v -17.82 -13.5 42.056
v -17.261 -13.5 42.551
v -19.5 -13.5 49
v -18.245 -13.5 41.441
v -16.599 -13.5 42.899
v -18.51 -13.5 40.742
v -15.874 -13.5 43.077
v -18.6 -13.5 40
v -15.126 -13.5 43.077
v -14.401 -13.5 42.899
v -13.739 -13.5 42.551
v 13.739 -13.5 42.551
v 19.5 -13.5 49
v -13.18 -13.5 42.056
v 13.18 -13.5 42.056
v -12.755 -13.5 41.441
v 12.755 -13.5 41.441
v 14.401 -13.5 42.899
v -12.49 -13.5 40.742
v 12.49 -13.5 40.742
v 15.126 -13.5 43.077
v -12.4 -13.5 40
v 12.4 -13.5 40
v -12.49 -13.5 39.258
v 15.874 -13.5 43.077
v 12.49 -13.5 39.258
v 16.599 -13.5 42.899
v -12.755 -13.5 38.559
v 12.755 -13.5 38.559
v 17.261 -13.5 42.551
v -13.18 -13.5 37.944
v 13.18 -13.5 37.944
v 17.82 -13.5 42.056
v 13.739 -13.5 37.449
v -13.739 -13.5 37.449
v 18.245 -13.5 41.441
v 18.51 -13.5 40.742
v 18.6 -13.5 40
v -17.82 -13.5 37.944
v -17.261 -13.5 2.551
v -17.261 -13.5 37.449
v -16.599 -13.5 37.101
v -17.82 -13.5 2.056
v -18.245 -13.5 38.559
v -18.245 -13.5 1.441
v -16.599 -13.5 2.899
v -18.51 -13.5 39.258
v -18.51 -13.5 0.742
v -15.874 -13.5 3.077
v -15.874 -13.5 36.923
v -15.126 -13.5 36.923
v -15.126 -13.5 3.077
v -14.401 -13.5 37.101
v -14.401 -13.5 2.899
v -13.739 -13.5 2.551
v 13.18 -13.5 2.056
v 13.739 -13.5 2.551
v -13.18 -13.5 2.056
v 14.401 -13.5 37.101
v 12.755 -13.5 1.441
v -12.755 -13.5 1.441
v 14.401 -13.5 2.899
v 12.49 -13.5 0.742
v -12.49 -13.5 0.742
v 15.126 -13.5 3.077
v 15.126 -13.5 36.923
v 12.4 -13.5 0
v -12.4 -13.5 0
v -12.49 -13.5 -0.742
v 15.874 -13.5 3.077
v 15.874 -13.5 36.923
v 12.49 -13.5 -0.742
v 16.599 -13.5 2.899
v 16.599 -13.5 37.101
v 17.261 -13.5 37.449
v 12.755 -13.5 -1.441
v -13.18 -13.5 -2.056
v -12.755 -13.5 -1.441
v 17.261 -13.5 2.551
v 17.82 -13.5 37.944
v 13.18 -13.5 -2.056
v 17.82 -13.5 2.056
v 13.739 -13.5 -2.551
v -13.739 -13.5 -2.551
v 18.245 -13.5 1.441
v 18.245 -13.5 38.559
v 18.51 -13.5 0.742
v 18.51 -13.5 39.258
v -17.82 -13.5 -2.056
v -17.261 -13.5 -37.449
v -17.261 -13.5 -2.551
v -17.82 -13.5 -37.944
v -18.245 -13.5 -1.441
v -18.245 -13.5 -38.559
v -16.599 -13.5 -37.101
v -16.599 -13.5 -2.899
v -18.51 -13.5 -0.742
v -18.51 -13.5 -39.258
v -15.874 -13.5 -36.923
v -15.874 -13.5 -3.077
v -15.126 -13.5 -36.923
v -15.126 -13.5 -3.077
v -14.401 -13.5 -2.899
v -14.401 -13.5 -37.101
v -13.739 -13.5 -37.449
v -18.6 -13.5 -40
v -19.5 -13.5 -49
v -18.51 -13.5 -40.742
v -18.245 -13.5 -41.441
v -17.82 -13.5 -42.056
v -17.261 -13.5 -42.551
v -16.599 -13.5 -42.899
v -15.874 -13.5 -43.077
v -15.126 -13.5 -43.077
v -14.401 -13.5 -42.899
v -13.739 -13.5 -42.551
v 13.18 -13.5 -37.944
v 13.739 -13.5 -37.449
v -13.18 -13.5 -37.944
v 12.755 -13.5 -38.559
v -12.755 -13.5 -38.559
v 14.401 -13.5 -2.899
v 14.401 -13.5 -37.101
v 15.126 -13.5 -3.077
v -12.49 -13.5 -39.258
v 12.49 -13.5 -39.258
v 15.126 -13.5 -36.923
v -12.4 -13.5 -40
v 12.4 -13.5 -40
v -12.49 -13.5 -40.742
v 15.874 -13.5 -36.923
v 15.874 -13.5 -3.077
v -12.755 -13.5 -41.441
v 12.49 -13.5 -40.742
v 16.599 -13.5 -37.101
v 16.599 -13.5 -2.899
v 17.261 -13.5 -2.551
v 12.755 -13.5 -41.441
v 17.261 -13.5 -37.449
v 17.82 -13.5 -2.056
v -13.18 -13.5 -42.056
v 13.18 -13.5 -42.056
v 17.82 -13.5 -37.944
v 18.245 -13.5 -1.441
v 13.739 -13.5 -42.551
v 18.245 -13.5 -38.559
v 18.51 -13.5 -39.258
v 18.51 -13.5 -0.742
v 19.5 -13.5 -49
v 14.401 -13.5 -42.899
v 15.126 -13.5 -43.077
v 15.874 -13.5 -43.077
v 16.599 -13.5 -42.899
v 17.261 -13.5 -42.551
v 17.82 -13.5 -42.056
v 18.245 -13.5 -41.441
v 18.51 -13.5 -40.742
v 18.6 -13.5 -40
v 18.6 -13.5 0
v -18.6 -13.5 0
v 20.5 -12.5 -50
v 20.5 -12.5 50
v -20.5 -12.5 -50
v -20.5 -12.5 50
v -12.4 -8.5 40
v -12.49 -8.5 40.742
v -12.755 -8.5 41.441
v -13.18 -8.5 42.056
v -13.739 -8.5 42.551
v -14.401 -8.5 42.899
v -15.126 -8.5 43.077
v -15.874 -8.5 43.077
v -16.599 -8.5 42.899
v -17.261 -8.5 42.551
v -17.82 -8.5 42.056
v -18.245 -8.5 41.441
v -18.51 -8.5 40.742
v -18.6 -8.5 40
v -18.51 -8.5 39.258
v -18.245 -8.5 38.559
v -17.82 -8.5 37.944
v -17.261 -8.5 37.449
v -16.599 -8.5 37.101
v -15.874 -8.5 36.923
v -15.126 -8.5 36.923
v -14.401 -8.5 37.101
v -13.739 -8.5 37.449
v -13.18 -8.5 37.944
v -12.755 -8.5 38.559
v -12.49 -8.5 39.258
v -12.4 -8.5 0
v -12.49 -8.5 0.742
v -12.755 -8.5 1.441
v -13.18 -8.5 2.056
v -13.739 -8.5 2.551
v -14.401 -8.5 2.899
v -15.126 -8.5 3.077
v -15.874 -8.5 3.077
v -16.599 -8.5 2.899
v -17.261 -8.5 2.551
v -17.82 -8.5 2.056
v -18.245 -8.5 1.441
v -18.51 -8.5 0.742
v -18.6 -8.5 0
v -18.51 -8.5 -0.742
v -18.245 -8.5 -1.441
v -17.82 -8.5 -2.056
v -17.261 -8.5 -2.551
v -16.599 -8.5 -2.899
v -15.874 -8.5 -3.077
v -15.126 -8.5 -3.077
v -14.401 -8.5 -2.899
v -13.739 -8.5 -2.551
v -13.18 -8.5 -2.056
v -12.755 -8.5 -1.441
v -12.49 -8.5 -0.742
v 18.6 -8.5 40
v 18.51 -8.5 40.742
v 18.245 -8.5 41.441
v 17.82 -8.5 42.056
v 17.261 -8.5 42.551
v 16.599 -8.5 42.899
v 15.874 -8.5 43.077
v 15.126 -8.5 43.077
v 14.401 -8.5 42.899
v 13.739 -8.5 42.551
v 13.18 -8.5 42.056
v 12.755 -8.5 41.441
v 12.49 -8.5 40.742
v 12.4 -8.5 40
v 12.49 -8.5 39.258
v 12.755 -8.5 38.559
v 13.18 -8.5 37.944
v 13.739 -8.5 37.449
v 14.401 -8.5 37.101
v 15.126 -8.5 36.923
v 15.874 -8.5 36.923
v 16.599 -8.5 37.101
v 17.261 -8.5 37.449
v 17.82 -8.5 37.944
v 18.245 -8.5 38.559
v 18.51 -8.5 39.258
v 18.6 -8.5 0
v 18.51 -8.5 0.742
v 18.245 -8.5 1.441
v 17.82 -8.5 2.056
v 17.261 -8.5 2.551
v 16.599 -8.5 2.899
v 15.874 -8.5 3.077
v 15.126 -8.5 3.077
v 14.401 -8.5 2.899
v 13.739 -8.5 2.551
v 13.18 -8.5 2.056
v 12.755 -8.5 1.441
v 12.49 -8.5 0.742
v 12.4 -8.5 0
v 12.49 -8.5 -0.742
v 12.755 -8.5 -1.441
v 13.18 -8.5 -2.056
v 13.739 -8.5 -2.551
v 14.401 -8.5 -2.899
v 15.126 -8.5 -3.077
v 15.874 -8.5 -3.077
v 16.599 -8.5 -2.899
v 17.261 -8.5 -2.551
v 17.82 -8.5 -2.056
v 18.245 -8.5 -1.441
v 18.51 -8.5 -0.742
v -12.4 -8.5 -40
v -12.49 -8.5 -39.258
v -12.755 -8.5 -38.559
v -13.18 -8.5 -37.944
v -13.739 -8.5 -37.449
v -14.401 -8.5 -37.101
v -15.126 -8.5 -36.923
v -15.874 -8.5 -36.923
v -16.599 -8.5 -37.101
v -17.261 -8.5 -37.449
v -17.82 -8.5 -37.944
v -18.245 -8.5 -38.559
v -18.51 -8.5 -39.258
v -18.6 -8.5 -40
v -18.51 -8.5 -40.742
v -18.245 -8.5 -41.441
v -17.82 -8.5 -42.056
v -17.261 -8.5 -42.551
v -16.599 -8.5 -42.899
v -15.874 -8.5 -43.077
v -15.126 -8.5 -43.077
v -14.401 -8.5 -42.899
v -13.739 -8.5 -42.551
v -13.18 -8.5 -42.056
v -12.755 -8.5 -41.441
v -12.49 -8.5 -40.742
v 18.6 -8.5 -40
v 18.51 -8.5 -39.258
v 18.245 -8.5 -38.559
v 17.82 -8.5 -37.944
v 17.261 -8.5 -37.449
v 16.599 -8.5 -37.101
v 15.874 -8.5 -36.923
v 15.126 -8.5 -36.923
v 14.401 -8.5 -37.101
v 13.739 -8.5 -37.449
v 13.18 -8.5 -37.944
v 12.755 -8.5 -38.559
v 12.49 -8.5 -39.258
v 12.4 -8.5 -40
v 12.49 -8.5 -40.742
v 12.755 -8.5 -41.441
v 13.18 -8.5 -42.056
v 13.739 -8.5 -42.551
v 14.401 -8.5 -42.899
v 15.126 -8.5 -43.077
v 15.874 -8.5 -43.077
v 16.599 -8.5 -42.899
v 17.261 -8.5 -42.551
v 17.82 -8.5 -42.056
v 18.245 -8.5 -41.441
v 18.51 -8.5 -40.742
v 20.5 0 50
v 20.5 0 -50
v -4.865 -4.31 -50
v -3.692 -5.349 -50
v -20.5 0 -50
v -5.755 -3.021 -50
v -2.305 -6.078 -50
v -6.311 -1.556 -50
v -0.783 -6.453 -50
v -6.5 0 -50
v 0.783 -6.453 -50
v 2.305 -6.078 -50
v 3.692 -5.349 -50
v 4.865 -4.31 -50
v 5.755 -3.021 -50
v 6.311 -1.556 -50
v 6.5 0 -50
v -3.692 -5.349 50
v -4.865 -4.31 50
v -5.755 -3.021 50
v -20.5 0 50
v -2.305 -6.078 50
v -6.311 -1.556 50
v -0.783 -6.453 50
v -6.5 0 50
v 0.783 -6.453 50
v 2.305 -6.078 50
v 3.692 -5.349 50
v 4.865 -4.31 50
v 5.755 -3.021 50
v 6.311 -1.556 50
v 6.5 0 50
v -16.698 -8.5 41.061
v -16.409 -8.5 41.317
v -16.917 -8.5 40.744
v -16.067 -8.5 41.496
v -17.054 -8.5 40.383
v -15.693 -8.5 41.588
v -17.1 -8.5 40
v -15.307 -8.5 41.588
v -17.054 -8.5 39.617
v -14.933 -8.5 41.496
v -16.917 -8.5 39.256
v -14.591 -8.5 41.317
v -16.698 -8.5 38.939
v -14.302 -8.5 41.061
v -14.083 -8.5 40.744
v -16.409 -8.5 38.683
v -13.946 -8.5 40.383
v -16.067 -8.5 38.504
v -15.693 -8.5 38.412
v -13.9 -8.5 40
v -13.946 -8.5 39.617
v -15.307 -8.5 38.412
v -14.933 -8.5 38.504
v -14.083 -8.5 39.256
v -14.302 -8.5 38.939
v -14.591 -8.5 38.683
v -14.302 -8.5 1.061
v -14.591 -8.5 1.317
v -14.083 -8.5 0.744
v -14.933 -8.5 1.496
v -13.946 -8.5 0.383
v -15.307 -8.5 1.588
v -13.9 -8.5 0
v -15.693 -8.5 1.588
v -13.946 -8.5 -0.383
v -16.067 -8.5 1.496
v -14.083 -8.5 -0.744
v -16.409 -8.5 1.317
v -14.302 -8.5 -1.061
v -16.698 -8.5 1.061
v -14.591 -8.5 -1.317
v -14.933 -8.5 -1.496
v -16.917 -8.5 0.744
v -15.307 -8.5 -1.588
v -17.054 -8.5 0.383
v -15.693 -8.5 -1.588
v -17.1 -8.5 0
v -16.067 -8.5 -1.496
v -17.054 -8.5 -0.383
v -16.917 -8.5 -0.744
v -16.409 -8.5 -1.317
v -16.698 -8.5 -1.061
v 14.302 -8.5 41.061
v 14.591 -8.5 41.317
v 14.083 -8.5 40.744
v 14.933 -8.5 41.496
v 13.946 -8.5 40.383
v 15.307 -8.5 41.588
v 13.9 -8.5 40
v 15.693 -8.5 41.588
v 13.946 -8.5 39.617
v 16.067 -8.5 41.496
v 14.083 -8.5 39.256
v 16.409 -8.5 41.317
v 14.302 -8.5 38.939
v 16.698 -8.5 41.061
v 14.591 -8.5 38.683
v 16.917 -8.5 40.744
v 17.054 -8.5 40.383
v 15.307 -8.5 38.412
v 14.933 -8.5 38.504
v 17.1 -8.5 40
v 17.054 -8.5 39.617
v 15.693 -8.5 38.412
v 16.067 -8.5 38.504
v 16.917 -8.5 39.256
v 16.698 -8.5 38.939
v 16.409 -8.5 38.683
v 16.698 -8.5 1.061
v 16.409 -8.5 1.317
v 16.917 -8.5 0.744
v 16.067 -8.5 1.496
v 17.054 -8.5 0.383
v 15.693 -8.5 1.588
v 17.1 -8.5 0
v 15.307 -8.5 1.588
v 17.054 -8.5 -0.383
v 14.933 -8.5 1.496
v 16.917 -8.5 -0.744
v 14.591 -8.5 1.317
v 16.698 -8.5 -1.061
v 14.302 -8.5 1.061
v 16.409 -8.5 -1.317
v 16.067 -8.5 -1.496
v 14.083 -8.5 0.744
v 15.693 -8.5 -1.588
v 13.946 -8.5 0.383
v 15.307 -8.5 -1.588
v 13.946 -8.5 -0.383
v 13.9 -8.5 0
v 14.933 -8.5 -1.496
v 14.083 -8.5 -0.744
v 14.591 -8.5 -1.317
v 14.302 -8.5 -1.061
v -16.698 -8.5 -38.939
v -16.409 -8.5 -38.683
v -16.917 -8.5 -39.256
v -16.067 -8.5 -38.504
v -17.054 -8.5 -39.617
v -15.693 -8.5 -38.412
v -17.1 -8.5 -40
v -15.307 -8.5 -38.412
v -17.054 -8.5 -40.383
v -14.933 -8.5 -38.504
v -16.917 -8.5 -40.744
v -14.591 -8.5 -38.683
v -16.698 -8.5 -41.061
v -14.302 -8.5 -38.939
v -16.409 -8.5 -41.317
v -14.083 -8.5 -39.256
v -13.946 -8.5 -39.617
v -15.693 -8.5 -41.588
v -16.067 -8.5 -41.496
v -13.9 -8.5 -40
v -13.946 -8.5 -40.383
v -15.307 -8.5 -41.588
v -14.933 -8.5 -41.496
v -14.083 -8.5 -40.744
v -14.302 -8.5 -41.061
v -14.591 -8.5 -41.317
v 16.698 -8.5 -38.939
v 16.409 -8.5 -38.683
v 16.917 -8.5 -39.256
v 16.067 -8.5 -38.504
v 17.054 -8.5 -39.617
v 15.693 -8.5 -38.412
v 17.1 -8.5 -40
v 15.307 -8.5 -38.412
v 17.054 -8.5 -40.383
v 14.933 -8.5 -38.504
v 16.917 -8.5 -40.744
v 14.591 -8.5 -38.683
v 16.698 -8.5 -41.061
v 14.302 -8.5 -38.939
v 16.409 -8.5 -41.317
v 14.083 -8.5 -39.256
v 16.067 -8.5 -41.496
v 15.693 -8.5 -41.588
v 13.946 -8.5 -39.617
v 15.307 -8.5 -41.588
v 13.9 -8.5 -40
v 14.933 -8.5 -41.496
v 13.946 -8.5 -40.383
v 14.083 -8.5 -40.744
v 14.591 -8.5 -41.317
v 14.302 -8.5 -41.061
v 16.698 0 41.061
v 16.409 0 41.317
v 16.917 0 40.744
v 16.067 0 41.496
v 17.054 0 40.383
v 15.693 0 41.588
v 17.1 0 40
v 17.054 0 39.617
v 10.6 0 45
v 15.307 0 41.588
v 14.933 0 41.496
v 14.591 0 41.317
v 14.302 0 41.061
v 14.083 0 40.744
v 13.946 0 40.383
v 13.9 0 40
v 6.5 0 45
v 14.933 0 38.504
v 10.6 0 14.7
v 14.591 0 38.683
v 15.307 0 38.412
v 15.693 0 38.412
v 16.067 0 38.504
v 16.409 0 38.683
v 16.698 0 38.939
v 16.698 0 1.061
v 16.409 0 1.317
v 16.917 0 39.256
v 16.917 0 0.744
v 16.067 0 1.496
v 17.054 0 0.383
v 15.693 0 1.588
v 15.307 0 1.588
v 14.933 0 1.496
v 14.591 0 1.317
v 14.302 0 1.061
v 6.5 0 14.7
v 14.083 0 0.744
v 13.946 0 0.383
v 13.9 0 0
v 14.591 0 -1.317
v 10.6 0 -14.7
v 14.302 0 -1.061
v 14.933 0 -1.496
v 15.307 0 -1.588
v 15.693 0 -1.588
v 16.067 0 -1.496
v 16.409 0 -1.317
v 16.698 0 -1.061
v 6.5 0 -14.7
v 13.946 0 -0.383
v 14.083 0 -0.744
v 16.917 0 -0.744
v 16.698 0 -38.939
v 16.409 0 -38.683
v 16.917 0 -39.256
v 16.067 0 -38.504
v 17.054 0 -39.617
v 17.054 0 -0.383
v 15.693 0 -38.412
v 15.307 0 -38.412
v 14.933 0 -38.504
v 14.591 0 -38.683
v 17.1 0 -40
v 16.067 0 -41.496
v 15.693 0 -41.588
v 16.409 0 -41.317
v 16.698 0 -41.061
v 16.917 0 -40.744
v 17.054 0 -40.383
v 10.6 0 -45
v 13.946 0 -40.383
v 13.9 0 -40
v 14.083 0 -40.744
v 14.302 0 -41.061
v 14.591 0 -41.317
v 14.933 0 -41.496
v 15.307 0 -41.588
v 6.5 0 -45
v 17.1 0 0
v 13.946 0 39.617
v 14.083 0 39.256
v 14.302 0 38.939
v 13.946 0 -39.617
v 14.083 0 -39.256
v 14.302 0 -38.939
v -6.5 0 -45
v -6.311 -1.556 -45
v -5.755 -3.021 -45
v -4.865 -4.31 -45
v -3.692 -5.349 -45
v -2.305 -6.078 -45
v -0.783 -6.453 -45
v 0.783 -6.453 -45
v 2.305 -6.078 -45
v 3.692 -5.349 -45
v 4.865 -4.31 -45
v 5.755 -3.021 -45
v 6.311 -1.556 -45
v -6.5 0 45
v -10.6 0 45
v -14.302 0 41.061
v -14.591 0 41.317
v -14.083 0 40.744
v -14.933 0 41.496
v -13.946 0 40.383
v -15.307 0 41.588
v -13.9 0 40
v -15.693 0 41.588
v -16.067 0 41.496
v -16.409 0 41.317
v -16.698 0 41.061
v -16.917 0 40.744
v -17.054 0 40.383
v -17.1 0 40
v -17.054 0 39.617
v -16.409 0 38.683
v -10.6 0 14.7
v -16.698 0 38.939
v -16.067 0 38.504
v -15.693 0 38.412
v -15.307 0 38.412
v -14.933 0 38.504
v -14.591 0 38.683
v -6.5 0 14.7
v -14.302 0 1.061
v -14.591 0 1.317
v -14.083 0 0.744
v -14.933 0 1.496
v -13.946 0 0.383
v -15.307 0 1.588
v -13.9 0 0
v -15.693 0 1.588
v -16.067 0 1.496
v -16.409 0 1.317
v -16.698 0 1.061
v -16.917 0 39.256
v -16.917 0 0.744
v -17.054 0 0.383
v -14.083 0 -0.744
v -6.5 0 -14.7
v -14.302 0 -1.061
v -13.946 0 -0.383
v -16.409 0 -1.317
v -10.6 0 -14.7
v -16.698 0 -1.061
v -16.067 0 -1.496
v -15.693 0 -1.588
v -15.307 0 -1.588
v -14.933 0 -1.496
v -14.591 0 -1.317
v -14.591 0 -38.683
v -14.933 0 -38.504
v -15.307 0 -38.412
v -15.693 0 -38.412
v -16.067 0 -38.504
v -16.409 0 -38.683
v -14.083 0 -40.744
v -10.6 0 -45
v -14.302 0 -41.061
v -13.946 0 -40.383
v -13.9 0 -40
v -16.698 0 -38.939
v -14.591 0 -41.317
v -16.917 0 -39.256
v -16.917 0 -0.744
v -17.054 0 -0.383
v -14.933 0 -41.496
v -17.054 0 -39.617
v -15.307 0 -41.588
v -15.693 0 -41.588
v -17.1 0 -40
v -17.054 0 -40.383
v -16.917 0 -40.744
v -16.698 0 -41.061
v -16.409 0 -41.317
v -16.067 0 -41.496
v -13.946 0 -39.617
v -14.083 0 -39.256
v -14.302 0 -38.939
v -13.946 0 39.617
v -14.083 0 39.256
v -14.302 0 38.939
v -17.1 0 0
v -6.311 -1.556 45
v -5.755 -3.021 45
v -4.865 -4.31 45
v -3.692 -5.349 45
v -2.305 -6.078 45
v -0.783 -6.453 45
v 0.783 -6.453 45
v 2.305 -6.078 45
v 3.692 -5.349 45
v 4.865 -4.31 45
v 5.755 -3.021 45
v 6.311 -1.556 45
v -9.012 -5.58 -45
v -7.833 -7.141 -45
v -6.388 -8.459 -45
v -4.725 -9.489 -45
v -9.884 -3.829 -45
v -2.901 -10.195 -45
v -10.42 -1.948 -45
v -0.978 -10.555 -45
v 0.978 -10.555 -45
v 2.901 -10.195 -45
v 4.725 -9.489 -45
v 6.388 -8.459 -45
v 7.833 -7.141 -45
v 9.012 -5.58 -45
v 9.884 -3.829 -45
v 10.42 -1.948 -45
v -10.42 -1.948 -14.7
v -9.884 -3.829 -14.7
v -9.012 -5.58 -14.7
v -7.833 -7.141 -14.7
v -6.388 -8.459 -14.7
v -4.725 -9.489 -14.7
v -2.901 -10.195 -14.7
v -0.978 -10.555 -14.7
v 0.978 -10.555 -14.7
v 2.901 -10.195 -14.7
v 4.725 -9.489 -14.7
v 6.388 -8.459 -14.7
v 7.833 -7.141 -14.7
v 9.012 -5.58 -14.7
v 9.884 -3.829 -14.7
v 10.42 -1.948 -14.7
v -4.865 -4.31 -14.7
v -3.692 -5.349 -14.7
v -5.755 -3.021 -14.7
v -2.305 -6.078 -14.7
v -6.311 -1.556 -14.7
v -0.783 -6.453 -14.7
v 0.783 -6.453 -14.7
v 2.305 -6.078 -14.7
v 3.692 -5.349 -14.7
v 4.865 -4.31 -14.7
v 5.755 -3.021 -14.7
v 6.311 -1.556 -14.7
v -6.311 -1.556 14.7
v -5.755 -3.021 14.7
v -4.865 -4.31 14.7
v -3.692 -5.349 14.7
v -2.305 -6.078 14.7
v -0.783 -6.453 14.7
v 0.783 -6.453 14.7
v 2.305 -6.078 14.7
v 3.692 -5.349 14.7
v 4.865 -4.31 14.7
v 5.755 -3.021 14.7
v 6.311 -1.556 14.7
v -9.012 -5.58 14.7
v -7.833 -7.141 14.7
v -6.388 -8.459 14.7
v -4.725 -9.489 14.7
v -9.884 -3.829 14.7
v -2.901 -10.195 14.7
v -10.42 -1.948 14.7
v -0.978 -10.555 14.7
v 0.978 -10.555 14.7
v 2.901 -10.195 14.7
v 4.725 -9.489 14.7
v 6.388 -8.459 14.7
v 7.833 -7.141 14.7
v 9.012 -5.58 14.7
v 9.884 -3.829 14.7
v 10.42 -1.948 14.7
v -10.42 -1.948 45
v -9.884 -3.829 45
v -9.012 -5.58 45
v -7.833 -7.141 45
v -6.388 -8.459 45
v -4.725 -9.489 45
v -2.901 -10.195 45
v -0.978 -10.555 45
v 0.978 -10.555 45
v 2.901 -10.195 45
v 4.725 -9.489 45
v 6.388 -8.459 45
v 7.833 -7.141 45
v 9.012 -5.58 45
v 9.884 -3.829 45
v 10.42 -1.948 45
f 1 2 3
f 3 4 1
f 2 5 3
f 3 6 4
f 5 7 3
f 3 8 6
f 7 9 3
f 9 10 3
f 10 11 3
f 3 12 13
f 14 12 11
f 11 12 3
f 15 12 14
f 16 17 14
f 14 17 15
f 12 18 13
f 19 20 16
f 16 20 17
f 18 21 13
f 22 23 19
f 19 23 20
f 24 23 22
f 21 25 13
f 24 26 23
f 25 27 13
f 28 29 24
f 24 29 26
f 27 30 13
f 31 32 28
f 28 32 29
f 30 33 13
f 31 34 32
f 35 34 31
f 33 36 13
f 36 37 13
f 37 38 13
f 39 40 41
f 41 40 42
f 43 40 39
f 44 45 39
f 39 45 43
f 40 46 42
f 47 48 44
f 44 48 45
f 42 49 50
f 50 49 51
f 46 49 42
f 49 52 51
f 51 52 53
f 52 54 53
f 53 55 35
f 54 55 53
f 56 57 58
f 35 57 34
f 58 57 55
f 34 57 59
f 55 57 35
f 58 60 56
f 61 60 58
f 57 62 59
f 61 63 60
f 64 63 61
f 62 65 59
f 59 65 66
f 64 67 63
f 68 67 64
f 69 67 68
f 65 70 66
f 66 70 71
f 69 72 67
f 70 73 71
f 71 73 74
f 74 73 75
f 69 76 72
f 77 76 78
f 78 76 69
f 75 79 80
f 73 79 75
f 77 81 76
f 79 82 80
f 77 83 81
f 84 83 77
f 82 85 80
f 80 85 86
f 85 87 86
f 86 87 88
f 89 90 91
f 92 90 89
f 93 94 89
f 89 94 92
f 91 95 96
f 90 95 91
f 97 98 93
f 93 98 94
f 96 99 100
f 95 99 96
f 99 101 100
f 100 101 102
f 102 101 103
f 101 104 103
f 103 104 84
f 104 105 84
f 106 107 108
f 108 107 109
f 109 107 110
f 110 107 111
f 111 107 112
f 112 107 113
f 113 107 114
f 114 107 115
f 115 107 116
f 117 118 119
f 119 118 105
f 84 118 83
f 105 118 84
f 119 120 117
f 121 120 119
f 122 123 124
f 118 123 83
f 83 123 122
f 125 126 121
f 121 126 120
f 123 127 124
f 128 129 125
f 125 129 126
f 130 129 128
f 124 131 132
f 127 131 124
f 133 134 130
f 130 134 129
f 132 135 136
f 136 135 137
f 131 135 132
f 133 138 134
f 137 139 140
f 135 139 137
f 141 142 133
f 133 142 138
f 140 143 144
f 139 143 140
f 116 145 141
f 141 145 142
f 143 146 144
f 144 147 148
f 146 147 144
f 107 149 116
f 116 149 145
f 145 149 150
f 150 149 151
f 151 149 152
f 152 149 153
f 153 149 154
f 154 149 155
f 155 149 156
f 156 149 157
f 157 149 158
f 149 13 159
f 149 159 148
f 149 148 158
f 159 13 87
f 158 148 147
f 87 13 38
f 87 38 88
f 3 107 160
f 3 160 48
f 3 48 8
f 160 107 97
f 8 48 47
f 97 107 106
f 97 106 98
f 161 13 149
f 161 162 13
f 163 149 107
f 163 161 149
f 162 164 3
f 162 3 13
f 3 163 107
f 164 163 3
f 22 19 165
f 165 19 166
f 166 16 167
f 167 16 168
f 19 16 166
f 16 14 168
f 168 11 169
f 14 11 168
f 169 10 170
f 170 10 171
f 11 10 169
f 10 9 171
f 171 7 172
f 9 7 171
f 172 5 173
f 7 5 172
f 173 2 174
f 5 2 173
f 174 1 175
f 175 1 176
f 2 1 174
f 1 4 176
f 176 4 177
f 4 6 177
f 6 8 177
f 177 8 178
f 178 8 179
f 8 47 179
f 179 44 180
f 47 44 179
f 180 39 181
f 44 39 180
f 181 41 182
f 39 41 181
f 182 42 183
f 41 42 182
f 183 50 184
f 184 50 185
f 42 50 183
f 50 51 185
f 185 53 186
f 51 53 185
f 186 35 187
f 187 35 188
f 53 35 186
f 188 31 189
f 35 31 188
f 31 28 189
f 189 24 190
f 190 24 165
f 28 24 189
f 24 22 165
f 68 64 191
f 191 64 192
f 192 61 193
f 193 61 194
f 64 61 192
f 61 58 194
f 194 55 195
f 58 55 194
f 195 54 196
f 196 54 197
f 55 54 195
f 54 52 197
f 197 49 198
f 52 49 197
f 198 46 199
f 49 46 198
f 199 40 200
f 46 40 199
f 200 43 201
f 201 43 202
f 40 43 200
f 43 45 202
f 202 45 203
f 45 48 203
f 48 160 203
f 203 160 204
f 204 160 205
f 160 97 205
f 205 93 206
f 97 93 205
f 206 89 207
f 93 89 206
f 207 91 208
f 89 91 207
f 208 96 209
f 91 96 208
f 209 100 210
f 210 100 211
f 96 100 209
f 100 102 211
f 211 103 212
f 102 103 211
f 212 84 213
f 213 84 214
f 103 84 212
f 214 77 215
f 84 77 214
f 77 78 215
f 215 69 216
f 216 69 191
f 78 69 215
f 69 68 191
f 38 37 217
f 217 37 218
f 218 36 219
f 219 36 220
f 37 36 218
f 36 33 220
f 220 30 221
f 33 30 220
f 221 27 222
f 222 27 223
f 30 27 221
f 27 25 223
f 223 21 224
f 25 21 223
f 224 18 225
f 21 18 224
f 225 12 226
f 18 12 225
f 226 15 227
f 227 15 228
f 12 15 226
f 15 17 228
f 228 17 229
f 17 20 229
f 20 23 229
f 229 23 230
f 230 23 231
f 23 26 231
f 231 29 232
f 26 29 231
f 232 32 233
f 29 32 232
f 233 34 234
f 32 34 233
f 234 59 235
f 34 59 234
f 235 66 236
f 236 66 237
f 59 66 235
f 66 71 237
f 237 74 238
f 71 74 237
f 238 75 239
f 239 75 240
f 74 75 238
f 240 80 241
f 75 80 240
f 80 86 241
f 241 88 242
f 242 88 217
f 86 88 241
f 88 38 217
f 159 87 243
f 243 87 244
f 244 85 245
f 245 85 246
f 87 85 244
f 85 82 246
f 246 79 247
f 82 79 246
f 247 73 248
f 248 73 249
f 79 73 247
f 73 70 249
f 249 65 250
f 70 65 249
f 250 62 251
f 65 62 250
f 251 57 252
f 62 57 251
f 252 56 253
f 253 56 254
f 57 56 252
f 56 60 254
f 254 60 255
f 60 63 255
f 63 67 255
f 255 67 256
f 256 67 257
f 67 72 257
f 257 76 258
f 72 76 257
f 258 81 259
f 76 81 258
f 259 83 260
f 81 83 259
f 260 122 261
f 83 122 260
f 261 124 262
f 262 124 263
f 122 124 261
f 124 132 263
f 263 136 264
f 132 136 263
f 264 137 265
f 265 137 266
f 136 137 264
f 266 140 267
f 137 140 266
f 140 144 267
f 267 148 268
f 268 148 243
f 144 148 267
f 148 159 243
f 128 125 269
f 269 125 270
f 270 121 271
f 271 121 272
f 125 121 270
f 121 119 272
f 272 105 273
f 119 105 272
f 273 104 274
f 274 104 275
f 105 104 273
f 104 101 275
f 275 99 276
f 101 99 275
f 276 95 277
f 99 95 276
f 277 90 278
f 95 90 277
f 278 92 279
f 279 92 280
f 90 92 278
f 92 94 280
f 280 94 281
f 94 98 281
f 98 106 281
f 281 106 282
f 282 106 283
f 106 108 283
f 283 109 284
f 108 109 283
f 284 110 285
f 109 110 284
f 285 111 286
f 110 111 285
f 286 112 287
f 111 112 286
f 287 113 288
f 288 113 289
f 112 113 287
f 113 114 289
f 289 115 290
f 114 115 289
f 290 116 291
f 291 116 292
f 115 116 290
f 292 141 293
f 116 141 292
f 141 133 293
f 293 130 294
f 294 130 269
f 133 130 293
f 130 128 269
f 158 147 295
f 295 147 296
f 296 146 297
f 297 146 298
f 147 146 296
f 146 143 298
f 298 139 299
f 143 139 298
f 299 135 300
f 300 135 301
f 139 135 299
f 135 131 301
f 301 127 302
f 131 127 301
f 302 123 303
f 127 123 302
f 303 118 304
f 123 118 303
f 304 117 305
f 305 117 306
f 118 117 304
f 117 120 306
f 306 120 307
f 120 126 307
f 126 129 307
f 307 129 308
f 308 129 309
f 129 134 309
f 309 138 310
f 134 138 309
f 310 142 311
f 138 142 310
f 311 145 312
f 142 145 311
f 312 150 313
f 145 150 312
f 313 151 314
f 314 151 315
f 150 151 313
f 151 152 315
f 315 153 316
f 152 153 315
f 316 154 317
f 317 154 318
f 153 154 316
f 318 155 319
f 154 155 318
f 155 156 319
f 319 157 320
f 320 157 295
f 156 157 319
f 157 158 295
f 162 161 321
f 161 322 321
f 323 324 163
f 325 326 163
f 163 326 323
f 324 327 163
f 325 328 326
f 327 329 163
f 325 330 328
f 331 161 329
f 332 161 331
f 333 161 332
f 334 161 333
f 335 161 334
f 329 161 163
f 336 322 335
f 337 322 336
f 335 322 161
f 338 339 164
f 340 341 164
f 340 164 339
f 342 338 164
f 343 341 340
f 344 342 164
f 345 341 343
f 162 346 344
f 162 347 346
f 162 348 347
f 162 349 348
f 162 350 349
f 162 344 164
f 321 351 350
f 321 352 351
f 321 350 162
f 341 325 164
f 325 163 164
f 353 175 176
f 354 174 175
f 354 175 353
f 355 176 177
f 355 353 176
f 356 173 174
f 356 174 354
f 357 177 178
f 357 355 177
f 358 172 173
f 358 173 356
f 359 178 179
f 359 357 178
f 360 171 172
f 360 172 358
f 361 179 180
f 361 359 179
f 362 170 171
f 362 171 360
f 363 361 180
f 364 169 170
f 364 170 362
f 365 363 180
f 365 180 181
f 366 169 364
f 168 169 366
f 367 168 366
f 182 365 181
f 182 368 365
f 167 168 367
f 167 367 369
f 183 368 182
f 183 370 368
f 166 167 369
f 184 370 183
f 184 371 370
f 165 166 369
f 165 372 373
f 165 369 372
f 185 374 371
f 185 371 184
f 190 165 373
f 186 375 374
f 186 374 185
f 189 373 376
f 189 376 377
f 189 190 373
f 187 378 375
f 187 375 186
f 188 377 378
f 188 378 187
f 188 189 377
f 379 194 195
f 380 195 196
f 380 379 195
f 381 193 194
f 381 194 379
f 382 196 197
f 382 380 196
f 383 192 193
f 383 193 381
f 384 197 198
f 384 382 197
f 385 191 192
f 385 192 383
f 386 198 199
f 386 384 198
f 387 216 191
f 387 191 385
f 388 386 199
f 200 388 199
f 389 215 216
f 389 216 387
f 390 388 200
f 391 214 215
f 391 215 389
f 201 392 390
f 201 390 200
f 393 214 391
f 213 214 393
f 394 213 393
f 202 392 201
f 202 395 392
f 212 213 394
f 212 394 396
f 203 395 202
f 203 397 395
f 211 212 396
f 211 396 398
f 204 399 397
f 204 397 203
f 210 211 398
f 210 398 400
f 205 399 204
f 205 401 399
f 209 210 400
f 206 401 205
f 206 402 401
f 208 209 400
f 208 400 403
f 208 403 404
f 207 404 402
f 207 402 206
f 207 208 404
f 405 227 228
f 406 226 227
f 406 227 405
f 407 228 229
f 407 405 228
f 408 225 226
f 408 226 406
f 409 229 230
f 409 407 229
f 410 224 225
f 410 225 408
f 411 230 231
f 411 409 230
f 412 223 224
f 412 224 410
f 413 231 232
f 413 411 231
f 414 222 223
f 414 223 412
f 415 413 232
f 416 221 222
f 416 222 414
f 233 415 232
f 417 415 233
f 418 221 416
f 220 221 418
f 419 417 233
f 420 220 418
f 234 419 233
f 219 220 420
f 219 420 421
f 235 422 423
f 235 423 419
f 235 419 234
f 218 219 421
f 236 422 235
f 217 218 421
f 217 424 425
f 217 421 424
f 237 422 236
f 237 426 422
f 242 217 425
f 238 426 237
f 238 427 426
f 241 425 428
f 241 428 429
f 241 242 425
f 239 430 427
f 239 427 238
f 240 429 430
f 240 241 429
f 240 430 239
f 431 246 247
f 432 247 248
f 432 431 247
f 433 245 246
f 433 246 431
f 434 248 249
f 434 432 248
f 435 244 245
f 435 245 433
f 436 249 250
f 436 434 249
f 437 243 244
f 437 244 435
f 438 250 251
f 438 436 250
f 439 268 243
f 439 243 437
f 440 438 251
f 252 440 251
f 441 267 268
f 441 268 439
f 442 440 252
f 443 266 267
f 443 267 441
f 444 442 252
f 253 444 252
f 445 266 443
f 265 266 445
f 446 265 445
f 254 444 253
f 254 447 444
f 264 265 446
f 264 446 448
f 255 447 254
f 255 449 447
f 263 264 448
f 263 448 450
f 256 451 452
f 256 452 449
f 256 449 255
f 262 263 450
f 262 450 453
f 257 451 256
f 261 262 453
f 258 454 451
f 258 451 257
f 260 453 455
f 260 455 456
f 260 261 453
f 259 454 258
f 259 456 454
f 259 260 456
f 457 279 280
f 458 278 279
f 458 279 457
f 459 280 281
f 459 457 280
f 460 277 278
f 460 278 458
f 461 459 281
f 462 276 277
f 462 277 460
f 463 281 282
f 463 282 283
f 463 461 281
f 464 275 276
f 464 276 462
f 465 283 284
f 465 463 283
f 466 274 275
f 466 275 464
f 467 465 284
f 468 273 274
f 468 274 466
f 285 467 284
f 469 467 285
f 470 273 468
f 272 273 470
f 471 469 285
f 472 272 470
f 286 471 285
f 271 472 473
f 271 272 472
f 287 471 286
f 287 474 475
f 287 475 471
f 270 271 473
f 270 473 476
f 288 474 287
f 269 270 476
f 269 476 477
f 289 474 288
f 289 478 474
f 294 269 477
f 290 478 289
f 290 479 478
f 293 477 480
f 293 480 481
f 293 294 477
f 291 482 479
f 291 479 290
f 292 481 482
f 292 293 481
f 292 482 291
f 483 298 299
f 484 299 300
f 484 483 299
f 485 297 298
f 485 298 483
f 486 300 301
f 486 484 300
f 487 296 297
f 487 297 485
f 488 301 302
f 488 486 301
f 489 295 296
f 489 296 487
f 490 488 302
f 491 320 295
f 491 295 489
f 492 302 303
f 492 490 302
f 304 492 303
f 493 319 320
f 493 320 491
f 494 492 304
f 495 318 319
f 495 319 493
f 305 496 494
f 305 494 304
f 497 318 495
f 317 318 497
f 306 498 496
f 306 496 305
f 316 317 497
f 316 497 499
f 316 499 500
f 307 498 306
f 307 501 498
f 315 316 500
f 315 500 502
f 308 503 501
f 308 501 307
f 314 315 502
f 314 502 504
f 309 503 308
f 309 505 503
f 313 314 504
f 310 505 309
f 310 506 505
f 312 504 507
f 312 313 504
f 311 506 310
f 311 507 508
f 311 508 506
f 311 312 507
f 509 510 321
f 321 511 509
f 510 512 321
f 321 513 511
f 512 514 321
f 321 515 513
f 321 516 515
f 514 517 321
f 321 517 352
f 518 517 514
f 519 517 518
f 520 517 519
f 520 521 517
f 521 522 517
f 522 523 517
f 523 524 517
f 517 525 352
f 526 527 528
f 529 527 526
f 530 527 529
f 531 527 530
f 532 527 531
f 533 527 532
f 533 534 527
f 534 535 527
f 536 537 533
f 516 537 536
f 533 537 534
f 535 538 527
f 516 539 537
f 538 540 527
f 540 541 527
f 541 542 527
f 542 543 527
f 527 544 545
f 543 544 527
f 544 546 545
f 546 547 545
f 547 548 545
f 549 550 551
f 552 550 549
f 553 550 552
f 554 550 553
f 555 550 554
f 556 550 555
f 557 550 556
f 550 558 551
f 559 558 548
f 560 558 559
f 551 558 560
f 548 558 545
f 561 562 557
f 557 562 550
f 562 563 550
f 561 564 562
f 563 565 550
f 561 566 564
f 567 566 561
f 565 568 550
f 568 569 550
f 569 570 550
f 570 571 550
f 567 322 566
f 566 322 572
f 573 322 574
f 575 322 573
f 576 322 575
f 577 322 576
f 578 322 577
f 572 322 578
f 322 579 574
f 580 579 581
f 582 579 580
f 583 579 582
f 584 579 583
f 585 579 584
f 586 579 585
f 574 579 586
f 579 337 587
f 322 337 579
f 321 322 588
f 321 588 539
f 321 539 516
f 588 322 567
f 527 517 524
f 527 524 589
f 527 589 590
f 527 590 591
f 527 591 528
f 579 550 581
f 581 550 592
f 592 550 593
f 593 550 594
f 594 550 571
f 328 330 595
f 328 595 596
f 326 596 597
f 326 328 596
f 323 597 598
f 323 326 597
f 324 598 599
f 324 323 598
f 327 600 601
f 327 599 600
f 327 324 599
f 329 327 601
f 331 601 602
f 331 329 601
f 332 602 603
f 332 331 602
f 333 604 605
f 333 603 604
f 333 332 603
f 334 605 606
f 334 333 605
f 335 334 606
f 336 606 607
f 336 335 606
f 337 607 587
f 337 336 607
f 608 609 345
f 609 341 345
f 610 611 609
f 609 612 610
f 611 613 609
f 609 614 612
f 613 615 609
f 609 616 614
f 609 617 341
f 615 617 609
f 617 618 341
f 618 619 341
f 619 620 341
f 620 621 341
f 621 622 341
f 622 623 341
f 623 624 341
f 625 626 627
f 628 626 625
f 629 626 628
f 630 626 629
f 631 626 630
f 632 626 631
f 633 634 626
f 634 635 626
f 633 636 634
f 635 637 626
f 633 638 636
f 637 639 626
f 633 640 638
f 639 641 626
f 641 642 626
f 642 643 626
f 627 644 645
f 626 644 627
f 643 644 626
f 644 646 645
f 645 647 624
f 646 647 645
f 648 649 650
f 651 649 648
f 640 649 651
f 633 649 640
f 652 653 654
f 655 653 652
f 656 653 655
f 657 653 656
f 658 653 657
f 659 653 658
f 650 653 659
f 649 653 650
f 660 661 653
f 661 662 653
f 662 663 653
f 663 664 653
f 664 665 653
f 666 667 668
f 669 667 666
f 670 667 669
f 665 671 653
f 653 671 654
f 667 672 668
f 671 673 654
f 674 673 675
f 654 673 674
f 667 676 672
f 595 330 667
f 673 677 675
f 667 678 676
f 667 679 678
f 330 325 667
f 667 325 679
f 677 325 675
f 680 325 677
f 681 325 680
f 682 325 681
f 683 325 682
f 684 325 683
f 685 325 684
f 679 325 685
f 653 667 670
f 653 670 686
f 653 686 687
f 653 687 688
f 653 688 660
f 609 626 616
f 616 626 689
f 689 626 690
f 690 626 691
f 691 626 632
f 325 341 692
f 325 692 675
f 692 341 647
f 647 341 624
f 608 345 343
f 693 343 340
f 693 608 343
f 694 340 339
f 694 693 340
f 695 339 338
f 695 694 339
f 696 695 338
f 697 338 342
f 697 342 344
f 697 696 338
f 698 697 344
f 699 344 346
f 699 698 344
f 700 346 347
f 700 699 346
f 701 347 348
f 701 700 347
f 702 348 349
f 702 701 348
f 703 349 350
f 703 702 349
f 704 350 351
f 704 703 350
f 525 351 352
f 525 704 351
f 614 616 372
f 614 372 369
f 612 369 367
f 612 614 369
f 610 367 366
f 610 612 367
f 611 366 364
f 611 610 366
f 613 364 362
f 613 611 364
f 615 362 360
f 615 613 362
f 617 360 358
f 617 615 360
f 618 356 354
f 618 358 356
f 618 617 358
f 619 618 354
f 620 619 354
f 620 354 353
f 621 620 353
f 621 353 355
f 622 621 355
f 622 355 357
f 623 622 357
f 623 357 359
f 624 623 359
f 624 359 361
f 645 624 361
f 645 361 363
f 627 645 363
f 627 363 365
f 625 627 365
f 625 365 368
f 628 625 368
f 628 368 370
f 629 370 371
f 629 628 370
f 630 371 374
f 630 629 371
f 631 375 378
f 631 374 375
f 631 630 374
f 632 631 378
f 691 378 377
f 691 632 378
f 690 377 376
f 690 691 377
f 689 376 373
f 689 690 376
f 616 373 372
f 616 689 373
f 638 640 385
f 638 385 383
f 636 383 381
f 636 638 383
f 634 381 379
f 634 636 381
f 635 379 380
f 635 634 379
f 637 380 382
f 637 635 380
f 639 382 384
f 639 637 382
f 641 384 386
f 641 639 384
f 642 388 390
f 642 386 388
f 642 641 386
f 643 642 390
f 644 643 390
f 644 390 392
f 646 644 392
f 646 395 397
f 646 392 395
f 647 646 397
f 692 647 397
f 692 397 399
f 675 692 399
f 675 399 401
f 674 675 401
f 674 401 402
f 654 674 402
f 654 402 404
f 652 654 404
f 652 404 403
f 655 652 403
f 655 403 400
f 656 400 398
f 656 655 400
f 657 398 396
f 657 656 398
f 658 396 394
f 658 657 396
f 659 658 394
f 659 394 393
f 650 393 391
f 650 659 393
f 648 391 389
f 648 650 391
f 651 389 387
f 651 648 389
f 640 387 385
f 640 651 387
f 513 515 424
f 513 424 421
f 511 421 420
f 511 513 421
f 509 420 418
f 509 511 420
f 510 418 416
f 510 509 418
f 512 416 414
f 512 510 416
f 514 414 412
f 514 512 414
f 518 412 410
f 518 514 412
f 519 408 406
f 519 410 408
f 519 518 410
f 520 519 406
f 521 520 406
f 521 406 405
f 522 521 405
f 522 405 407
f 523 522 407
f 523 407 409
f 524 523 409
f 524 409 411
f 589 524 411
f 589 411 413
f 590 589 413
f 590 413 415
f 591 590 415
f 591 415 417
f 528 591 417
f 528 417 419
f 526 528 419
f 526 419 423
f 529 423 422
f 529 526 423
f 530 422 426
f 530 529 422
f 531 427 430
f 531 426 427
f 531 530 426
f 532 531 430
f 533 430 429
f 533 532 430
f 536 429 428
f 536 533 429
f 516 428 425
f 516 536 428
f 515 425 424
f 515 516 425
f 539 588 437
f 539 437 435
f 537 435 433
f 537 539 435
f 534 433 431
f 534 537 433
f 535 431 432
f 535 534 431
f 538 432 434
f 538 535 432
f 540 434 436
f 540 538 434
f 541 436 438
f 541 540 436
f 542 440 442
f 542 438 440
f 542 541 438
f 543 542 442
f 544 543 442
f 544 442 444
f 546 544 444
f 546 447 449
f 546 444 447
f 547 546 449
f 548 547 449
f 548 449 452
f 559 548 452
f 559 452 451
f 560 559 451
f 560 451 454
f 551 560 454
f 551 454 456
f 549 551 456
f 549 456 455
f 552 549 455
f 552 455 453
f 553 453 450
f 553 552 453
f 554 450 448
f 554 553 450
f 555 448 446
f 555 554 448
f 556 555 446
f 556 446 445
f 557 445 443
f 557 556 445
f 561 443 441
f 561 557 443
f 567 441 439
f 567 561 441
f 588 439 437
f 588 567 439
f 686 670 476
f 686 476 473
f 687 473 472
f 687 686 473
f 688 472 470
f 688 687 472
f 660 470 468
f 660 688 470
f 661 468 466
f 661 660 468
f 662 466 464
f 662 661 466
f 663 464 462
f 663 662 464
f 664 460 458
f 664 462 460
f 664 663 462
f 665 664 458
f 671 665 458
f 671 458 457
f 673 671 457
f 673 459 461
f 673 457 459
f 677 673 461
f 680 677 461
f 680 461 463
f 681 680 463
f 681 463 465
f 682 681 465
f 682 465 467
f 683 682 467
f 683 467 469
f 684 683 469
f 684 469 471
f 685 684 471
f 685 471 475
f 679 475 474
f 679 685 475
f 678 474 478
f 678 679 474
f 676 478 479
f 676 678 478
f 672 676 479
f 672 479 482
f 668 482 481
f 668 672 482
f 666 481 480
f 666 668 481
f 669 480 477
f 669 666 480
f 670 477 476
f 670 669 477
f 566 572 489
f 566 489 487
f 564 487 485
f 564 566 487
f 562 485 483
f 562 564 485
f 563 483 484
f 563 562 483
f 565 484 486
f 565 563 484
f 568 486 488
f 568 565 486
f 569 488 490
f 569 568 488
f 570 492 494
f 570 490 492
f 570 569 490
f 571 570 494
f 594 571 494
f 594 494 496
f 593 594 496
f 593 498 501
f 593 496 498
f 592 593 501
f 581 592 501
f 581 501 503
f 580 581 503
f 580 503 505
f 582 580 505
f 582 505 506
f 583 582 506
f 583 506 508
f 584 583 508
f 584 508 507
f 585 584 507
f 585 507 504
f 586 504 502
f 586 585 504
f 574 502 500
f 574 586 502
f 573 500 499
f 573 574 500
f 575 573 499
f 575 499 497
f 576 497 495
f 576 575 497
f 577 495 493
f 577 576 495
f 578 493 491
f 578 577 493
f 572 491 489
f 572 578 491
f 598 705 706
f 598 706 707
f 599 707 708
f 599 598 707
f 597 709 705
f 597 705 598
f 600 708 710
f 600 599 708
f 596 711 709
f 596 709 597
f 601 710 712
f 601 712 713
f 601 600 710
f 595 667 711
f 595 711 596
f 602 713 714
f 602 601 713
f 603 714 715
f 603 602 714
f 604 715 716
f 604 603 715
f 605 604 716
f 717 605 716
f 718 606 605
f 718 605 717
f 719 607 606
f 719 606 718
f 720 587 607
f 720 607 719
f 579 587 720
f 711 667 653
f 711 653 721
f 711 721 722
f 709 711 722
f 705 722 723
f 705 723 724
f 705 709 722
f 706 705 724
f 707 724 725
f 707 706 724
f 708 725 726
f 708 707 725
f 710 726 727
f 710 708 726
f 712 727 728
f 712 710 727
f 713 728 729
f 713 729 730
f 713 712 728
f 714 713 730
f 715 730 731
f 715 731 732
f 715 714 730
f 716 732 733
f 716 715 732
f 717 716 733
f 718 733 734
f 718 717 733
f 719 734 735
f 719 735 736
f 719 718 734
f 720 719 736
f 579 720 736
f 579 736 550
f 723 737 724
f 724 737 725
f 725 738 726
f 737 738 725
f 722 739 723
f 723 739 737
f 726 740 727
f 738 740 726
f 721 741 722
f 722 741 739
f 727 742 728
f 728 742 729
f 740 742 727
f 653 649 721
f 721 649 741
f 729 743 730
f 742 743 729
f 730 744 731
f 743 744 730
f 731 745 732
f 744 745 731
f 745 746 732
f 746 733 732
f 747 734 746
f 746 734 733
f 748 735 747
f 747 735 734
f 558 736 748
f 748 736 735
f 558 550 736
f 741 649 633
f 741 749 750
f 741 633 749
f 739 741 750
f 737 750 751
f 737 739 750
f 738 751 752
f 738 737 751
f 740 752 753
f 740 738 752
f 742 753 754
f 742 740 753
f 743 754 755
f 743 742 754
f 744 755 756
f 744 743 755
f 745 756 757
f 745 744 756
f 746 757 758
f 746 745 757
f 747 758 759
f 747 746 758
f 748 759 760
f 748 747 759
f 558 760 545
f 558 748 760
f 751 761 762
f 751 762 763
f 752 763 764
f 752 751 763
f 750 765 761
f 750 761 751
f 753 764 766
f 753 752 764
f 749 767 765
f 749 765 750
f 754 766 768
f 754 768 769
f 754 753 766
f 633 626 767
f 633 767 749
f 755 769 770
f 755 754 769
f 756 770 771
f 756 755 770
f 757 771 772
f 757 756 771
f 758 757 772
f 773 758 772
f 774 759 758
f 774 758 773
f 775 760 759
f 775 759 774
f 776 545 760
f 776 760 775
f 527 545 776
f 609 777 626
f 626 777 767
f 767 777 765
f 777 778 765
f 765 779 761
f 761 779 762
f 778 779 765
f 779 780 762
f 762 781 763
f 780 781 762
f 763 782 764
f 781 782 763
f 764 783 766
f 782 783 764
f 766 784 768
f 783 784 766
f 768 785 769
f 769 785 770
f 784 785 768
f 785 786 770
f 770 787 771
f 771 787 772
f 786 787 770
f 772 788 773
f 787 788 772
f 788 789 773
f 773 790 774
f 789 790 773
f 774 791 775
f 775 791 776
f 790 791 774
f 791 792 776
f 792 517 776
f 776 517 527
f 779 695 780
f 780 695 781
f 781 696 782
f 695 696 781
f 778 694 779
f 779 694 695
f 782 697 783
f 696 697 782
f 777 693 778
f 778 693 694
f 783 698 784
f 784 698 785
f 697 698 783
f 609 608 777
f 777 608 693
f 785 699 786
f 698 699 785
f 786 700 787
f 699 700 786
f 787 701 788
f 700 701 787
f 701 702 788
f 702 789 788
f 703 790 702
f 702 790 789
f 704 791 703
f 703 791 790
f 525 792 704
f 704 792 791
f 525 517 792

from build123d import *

# Parameters (mm, degrees)
PAD_DEPTH       = 50
SKETCH001_R     = 1.65
POCKET_DEPTH    = 13.501
SKETCH002_R     = 3.1
POCKET001_DEPTH = 5
SKETCH003_R     = 10.6
POCKET002_DEPTH = 30.3
SKETCH004_R     = 10.6
POCKET003_DEPTH = 30.3
CHAMFER_SIZE    = 1


with BuildPart() as part:
    # Sketch → Pad (new body, symmetric)
    with BuildSketch(Plane.XY):
        with BuildLine():
            Line((-20.5, -13.5), (20.5, -13.5))
            Line((20.5, -13.5), (20.5, 0))
            Line((20.5, 0), (6.5, 0))
            ThreePointArc((-6.5, 0), (0, -6.5), (6.5, 0))
            Line((-6.5, 0), (-20.5, 0))
            Line((-20.5, 0), (-20.5, -13.5))
        make_face()
    extrude(amount=PAD_DEPTH, both=True)

    # Sketch001 → Pocket (cut, through all)
    with BuildSketch(Plane.XZ):
        with Locations((-15.5, 40)):
            Circle(SKETCH001_R)
        with Locations((-15.5, 0)):
            Circle(SKETCH001_R)
        with Locations((-15.5, -40)):
            Circle(SKETCH001_R)
        with Locations((15.5, -40)):
            Circle(SKETCH001_R)
        with Locations((15.5, 0)):
            Circle(SKETCH001_R)
        with Locations((15.5, 40)):
            Circle(SKETCH001_R)
    extrude(amount=POCKET_DEPTH, mode=Mode.SUBTRACT)

    # Sketch002 (on Face1 of Pocket) → Pocket001 (cut)
    with BuildSketch(Plane.XZ.offset(13.5)):
        with Locations((-15.5, 40)):
            Circle(SKETCH002_R)
        with Locations((15.5, 40)):
            Circle(SKETCH002_R)
        with Locations((15.5, 0)):
            Circle(SKETCH002_R)
        with Locations((-15.5, 0)):
            Circle(SKETCH002_R)
        with Locations((-15.5, -40)):
            Circle(SKETCH002_R)
        with Locations((15.5, -40)):
            Circle(SKETCH002_R)
    extrude(amount=-POCKET001_DEPTH, mode=Mode.SUBTRACT)

    # Sketch003 (on DatumPlane) → Pocket002 (cut)
    with BuildSketch(Plane.XY.offset(45)):
        Circle(SKETCH003_R)
    extrude(amount=-POCKET002_DEPTH, mode=Mode.SUBTRACT)

    # Sketch004 (on DatumPlane) → Pocket003 (cut)
    with BuildSketch(Plane.XY.offset(-45)):
        Circle(SKETCH004_R)
    extrude(amount=POCKET003_DEPTH, mode=Mode.SUBTRACT)

    # Chamfer
    chamfer_edges = [part.edges().sort_by_distance(p)[0] for p in [
        (20.5, -13.5, 0),
        (0, -13.5, 50),
        (-20.5, -13.5, 0),
        (0, -13.5, -50),
    ]]
    chamfer(chamfer_edges, length=CHAMFER_SIZE)


solid = part.part
